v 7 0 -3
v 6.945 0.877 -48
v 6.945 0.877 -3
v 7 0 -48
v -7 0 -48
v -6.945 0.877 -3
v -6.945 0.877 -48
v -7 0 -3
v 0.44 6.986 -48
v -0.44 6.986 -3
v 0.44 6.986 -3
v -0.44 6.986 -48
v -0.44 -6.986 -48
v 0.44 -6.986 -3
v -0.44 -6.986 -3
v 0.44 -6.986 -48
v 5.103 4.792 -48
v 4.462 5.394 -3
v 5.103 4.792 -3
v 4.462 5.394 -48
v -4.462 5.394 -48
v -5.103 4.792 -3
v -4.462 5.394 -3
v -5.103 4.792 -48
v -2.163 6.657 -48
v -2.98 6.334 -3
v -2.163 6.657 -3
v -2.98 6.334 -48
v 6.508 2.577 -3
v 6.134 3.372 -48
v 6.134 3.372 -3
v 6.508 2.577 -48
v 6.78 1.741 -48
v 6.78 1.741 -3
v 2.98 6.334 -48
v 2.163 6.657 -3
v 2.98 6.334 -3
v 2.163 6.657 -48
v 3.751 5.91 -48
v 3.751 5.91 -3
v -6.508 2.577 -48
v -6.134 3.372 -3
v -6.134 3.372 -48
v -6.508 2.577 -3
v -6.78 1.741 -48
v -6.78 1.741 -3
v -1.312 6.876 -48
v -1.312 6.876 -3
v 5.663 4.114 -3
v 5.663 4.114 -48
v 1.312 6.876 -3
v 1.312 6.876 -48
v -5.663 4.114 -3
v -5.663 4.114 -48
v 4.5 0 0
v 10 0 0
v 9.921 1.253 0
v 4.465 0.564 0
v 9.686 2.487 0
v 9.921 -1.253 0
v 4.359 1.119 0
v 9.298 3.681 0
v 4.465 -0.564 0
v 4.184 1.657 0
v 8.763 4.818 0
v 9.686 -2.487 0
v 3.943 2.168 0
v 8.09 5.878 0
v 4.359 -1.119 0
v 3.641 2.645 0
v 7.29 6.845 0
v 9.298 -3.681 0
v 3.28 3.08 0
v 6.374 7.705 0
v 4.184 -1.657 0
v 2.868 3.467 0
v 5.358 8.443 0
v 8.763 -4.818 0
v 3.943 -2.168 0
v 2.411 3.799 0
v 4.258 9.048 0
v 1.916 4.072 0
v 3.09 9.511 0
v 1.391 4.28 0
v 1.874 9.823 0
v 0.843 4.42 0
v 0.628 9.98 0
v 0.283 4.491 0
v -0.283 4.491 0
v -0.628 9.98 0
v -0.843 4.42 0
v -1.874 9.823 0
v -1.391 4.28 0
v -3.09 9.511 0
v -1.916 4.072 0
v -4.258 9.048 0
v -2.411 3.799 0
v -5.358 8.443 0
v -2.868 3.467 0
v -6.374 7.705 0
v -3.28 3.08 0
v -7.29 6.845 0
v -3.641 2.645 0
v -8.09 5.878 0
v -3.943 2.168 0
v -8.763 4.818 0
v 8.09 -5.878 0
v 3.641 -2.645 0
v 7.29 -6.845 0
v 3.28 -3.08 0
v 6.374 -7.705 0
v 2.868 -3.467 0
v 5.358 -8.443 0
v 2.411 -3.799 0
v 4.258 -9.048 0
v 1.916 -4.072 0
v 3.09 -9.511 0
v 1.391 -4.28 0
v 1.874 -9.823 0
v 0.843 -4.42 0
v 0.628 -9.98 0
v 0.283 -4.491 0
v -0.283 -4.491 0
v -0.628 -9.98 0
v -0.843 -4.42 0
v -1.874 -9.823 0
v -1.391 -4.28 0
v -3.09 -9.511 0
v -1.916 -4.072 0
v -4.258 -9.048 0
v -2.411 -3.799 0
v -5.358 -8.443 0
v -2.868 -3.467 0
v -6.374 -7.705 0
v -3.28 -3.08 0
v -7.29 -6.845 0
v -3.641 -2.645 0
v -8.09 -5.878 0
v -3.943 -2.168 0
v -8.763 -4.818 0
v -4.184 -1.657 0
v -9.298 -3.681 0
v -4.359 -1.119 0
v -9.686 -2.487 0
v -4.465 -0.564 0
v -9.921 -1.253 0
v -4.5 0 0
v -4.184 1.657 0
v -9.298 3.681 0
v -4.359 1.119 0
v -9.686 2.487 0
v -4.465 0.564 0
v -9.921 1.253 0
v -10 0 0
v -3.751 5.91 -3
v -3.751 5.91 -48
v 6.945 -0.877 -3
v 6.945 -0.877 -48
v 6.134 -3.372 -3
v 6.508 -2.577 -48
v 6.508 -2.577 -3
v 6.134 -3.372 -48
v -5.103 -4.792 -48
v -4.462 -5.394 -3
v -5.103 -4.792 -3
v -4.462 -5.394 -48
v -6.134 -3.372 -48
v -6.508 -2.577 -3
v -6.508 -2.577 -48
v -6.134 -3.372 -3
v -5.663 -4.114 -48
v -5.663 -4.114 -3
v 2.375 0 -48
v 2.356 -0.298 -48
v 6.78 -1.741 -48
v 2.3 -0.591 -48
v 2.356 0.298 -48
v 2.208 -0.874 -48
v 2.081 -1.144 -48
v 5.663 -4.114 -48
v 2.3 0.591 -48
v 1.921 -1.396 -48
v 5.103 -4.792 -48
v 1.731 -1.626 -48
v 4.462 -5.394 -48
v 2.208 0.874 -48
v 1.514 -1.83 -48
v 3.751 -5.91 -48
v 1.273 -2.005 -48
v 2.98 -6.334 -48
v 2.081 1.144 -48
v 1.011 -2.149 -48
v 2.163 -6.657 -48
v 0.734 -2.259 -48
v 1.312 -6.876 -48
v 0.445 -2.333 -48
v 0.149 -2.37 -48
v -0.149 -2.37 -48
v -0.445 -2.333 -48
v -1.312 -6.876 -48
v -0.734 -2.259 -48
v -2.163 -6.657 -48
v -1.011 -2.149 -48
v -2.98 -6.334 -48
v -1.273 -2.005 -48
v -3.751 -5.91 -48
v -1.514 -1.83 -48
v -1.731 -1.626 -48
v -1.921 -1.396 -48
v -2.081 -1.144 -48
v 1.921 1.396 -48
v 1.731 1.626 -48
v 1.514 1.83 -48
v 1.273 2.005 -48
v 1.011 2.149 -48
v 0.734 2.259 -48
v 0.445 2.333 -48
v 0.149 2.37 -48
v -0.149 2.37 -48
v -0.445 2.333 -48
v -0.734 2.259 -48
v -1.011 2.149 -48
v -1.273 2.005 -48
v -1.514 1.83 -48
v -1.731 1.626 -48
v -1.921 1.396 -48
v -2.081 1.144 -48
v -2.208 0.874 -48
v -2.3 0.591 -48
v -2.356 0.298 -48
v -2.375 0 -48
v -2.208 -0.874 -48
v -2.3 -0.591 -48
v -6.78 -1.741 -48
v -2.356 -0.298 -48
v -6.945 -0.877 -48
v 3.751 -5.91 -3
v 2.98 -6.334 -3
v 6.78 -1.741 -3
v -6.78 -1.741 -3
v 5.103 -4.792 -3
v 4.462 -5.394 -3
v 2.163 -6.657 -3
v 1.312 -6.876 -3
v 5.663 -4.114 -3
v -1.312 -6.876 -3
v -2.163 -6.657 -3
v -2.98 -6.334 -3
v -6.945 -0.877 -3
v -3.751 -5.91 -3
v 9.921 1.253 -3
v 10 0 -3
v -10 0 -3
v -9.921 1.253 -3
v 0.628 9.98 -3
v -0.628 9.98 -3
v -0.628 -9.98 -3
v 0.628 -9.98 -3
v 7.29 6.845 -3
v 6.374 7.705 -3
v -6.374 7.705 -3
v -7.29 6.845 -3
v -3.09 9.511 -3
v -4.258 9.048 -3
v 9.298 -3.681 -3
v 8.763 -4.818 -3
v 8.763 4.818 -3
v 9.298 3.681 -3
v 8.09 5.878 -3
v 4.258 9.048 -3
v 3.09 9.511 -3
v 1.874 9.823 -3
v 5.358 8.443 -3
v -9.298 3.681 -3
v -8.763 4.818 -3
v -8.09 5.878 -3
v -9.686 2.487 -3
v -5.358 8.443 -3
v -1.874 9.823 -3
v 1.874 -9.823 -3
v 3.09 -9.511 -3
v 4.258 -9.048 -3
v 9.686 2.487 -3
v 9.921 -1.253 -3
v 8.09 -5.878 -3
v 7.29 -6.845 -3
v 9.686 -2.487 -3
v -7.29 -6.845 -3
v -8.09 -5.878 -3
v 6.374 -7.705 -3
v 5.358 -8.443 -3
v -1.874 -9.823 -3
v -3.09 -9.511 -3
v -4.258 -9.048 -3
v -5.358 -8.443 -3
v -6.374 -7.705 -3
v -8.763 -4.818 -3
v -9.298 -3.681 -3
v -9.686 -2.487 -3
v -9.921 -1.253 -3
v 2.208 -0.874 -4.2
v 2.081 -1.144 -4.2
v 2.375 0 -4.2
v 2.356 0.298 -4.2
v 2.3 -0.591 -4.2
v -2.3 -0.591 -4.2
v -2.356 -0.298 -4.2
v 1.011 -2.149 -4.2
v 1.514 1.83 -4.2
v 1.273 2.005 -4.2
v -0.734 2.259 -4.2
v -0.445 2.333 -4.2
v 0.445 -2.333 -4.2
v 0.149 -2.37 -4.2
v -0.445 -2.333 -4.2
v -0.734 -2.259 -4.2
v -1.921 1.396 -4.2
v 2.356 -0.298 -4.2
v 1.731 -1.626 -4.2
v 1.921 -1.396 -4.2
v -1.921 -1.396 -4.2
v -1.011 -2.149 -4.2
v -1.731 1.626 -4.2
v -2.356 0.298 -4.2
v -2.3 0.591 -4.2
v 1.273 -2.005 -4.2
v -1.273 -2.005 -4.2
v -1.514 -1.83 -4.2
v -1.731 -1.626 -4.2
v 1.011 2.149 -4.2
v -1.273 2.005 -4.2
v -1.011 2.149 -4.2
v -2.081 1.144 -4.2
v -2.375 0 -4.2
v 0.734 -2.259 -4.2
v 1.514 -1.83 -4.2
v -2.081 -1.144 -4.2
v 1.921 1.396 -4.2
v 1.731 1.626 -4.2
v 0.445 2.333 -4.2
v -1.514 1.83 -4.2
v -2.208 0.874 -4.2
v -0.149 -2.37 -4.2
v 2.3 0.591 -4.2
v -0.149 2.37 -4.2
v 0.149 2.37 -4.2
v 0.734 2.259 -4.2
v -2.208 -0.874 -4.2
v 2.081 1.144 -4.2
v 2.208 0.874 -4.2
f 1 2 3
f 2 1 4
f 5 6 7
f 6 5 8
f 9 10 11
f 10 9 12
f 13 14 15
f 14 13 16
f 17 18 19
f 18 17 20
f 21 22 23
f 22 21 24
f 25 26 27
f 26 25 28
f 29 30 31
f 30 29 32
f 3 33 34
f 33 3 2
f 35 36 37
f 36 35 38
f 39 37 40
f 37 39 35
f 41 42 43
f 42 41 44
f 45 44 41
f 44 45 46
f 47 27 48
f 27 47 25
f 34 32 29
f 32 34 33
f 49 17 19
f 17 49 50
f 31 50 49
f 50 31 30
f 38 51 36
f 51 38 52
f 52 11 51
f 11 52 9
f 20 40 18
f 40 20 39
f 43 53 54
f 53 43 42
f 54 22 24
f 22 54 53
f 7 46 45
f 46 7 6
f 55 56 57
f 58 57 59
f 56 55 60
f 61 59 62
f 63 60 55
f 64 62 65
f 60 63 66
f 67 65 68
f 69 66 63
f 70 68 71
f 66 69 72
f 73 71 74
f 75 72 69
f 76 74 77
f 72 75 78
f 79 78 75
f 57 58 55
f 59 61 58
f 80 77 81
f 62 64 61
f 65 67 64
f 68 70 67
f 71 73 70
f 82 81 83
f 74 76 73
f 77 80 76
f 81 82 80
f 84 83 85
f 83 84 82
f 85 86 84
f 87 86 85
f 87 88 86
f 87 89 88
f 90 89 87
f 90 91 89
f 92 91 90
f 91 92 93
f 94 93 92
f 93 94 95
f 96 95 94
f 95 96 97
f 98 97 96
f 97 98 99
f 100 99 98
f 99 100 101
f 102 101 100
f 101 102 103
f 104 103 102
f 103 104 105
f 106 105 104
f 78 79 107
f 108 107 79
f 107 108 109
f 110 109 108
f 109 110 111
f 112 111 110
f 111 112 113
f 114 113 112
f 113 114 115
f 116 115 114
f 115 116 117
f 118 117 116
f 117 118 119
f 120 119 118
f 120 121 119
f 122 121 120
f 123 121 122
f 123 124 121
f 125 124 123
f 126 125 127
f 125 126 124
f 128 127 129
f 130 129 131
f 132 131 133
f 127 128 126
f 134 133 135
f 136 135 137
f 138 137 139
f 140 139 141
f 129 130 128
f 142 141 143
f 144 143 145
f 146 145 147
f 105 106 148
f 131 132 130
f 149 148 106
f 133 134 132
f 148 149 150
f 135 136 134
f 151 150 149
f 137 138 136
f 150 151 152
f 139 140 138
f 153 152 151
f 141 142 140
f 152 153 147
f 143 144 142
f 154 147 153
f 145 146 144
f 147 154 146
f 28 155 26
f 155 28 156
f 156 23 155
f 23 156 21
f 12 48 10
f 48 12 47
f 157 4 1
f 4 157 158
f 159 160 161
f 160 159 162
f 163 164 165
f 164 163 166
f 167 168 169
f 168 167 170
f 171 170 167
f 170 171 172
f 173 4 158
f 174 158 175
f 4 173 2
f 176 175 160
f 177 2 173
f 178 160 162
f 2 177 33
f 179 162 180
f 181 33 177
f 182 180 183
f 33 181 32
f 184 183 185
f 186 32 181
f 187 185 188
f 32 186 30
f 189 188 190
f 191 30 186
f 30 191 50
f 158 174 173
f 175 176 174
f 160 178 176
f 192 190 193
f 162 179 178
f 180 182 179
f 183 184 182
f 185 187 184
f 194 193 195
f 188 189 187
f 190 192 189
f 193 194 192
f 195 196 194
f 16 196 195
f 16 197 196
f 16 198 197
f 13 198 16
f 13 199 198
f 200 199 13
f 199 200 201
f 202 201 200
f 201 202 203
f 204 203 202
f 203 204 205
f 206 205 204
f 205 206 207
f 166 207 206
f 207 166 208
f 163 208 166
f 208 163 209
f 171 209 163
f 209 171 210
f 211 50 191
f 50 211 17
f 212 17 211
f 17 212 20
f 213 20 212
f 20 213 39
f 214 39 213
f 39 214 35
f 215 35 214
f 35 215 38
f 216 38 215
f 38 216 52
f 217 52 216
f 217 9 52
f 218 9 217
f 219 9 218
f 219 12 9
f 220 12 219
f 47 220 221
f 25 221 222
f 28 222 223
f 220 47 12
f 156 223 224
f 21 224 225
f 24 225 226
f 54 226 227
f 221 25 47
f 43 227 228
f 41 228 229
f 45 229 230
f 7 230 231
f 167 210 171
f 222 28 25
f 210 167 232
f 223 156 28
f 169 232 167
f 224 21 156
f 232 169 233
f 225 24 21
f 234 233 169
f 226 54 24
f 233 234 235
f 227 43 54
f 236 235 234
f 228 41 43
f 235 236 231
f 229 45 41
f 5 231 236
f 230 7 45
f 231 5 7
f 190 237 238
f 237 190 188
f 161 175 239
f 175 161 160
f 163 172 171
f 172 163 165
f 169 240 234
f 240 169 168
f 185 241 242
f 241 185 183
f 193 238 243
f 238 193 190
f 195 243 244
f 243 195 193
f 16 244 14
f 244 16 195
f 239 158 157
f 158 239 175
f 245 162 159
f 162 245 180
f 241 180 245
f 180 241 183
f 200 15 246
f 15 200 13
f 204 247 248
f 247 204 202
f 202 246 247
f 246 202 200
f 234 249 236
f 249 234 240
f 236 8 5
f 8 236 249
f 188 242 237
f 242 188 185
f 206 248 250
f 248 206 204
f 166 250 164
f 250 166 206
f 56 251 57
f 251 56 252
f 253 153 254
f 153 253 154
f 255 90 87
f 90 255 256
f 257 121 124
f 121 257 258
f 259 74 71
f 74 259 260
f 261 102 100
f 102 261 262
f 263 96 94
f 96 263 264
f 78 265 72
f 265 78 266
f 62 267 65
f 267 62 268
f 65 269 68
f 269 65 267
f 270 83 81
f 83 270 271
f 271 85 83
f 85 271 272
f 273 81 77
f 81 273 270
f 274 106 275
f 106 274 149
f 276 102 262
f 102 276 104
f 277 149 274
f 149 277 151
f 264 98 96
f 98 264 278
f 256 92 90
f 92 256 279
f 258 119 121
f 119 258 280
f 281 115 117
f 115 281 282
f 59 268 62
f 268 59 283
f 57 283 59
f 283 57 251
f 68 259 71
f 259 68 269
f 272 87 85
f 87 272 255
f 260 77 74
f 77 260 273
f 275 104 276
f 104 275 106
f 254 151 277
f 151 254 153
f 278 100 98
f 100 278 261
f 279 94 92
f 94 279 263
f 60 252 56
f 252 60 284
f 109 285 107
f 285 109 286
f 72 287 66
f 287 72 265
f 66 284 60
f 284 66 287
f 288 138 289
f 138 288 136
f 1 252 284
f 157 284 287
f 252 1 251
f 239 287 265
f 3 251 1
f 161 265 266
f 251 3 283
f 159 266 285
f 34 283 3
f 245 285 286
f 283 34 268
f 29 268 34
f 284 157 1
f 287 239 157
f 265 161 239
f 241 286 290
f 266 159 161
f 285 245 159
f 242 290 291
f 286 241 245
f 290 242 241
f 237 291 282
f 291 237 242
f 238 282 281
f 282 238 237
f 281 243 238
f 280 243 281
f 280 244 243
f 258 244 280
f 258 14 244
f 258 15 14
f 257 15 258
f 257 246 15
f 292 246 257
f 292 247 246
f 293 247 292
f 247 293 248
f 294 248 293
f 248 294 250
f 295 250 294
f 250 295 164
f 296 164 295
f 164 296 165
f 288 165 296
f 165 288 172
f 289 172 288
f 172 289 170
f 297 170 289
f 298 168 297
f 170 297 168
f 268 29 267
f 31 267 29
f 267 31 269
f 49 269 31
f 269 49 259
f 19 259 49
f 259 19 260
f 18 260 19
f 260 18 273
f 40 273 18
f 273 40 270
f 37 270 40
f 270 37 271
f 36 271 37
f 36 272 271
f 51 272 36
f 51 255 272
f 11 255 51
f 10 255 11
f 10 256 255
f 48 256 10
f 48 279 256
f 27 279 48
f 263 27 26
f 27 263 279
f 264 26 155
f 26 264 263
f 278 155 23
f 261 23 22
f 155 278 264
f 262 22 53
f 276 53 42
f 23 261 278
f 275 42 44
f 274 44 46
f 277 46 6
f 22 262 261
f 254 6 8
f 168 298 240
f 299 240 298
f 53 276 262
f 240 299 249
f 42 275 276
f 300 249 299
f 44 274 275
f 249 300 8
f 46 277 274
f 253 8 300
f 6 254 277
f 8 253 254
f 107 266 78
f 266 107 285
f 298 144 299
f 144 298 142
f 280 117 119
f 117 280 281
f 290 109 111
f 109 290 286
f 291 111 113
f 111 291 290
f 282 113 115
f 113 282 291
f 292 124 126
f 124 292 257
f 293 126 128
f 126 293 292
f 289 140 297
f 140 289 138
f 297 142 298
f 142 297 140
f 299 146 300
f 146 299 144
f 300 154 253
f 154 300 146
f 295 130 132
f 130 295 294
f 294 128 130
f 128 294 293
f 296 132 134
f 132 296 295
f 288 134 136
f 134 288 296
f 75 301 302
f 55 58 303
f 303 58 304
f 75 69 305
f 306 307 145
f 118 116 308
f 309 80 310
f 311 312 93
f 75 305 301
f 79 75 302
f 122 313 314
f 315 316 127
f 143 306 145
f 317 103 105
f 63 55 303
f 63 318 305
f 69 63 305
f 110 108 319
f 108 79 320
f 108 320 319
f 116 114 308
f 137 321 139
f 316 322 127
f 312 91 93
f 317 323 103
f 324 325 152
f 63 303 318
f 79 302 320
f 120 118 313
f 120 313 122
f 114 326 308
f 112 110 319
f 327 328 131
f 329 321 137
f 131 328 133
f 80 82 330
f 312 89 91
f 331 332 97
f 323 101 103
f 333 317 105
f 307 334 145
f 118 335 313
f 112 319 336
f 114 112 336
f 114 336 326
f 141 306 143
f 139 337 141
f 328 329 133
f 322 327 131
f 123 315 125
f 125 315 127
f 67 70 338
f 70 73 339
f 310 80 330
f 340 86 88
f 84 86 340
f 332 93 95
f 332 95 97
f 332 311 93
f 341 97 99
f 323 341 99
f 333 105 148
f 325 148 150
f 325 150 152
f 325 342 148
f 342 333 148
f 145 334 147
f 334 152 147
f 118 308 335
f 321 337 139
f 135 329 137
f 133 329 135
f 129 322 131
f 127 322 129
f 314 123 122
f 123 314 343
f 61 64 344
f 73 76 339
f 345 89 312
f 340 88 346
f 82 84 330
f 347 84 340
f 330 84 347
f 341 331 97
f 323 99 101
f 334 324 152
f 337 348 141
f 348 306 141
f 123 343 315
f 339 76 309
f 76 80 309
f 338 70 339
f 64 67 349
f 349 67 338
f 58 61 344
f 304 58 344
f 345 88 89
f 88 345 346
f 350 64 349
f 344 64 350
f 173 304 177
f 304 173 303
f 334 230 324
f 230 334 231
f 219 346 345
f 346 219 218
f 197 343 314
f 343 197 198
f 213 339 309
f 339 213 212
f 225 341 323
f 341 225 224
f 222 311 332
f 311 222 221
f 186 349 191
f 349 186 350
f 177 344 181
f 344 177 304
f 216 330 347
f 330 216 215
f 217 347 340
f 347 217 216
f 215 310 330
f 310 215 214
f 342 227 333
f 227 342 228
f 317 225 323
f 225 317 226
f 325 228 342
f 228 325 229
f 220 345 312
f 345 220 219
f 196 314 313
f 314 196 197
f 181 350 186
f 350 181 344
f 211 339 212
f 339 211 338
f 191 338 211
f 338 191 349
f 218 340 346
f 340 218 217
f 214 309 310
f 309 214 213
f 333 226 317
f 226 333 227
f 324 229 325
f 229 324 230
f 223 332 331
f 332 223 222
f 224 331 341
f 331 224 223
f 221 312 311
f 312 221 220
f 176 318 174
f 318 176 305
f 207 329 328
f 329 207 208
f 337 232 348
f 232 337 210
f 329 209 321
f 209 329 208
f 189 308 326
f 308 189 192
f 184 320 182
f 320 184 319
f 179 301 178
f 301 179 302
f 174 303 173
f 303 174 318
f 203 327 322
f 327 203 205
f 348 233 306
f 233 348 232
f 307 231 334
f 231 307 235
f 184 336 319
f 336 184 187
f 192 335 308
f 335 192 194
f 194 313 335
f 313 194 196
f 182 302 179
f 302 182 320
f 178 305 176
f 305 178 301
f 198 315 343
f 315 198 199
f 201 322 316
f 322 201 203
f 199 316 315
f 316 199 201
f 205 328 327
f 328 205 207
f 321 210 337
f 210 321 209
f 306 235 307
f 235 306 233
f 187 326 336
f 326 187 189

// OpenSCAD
$fn = 50;


difference() {
	union() {
		translate(v = [0, 0, -48.0000000000]) {
			cylinder(h = 48, r = 7.0000000000);
		}
		translate(v = [0, 0, -3.0000000000]) {
			cylinder(h = 3, r = 10.0000000000);
		}
	}
	union() {
		translate(v = [0, 0, 0]) {
			rotate(a = [0, 0, 0]) {
				difference() {
					union() {
						#translate(v = [0, 0, -48.0000000000]) {
							cylinder(h = 48, r = 2.2500000000);
						}
						#translate(v = [0, 0, -4.2000000000]) {
							cylinder(h = 4.2000000000, r1 = 2.3750000000, r2 = 4.5000000000);
						}
						#translate(v = [0, 0, -48.0000000000]) {
							cylinder(h = 48, r = 2.3750000000);
						}
						#translate(v = [0, 0, -48.0000000000]) {
							cylinder(h = 48, r = 2.2500000000);
						}
					}
					union();
				}
			}
		}
	}
}
